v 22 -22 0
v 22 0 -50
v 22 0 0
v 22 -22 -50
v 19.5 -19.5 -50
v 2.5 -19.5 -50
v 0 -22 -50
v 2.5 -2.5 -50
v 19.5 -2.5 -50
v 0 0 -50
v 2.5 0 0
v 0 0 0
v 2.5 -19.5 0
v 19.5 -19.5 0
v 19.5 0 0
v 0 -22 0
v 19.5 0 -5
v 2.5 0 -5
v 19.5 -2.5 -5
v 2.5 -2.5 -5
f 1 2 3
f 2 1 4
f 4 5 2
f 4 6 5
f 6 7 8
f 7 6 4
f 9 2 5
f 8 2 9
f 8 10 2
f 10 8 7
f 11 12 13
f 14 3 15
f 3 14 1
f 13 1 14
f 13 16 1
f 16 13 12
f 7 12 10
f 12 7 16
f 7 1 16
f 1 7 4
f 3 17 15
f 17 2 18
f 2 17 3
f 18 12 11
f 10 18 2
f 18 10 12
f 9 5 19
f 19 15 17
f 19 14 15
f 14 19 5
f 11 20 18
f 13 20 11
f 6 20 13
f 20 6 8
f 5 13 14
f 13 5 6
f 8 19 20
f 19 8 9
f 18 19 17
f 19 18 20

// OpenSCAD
wall  = 2.5;
tower_width = 22;
margin = 0.5;
tower_width_with_margin = tower_width + margin;
height = 50;

module tower(h) {
    difference() {
        cube([tower_width, tower_width, h ] );
        translate( [wall, wall, -h] )
            cube([tower_width-(2*wall), tower_width-(2*wall), 3*h]);
    }

}

 rotate([ 180, 0, 0 ]) {   
    difference() {
        tower(h=height);
        translate([wall, -1, -1])
            cube([ tower_width-(2*wall), wall+2, 2*wall+1 ]);
    }
}
